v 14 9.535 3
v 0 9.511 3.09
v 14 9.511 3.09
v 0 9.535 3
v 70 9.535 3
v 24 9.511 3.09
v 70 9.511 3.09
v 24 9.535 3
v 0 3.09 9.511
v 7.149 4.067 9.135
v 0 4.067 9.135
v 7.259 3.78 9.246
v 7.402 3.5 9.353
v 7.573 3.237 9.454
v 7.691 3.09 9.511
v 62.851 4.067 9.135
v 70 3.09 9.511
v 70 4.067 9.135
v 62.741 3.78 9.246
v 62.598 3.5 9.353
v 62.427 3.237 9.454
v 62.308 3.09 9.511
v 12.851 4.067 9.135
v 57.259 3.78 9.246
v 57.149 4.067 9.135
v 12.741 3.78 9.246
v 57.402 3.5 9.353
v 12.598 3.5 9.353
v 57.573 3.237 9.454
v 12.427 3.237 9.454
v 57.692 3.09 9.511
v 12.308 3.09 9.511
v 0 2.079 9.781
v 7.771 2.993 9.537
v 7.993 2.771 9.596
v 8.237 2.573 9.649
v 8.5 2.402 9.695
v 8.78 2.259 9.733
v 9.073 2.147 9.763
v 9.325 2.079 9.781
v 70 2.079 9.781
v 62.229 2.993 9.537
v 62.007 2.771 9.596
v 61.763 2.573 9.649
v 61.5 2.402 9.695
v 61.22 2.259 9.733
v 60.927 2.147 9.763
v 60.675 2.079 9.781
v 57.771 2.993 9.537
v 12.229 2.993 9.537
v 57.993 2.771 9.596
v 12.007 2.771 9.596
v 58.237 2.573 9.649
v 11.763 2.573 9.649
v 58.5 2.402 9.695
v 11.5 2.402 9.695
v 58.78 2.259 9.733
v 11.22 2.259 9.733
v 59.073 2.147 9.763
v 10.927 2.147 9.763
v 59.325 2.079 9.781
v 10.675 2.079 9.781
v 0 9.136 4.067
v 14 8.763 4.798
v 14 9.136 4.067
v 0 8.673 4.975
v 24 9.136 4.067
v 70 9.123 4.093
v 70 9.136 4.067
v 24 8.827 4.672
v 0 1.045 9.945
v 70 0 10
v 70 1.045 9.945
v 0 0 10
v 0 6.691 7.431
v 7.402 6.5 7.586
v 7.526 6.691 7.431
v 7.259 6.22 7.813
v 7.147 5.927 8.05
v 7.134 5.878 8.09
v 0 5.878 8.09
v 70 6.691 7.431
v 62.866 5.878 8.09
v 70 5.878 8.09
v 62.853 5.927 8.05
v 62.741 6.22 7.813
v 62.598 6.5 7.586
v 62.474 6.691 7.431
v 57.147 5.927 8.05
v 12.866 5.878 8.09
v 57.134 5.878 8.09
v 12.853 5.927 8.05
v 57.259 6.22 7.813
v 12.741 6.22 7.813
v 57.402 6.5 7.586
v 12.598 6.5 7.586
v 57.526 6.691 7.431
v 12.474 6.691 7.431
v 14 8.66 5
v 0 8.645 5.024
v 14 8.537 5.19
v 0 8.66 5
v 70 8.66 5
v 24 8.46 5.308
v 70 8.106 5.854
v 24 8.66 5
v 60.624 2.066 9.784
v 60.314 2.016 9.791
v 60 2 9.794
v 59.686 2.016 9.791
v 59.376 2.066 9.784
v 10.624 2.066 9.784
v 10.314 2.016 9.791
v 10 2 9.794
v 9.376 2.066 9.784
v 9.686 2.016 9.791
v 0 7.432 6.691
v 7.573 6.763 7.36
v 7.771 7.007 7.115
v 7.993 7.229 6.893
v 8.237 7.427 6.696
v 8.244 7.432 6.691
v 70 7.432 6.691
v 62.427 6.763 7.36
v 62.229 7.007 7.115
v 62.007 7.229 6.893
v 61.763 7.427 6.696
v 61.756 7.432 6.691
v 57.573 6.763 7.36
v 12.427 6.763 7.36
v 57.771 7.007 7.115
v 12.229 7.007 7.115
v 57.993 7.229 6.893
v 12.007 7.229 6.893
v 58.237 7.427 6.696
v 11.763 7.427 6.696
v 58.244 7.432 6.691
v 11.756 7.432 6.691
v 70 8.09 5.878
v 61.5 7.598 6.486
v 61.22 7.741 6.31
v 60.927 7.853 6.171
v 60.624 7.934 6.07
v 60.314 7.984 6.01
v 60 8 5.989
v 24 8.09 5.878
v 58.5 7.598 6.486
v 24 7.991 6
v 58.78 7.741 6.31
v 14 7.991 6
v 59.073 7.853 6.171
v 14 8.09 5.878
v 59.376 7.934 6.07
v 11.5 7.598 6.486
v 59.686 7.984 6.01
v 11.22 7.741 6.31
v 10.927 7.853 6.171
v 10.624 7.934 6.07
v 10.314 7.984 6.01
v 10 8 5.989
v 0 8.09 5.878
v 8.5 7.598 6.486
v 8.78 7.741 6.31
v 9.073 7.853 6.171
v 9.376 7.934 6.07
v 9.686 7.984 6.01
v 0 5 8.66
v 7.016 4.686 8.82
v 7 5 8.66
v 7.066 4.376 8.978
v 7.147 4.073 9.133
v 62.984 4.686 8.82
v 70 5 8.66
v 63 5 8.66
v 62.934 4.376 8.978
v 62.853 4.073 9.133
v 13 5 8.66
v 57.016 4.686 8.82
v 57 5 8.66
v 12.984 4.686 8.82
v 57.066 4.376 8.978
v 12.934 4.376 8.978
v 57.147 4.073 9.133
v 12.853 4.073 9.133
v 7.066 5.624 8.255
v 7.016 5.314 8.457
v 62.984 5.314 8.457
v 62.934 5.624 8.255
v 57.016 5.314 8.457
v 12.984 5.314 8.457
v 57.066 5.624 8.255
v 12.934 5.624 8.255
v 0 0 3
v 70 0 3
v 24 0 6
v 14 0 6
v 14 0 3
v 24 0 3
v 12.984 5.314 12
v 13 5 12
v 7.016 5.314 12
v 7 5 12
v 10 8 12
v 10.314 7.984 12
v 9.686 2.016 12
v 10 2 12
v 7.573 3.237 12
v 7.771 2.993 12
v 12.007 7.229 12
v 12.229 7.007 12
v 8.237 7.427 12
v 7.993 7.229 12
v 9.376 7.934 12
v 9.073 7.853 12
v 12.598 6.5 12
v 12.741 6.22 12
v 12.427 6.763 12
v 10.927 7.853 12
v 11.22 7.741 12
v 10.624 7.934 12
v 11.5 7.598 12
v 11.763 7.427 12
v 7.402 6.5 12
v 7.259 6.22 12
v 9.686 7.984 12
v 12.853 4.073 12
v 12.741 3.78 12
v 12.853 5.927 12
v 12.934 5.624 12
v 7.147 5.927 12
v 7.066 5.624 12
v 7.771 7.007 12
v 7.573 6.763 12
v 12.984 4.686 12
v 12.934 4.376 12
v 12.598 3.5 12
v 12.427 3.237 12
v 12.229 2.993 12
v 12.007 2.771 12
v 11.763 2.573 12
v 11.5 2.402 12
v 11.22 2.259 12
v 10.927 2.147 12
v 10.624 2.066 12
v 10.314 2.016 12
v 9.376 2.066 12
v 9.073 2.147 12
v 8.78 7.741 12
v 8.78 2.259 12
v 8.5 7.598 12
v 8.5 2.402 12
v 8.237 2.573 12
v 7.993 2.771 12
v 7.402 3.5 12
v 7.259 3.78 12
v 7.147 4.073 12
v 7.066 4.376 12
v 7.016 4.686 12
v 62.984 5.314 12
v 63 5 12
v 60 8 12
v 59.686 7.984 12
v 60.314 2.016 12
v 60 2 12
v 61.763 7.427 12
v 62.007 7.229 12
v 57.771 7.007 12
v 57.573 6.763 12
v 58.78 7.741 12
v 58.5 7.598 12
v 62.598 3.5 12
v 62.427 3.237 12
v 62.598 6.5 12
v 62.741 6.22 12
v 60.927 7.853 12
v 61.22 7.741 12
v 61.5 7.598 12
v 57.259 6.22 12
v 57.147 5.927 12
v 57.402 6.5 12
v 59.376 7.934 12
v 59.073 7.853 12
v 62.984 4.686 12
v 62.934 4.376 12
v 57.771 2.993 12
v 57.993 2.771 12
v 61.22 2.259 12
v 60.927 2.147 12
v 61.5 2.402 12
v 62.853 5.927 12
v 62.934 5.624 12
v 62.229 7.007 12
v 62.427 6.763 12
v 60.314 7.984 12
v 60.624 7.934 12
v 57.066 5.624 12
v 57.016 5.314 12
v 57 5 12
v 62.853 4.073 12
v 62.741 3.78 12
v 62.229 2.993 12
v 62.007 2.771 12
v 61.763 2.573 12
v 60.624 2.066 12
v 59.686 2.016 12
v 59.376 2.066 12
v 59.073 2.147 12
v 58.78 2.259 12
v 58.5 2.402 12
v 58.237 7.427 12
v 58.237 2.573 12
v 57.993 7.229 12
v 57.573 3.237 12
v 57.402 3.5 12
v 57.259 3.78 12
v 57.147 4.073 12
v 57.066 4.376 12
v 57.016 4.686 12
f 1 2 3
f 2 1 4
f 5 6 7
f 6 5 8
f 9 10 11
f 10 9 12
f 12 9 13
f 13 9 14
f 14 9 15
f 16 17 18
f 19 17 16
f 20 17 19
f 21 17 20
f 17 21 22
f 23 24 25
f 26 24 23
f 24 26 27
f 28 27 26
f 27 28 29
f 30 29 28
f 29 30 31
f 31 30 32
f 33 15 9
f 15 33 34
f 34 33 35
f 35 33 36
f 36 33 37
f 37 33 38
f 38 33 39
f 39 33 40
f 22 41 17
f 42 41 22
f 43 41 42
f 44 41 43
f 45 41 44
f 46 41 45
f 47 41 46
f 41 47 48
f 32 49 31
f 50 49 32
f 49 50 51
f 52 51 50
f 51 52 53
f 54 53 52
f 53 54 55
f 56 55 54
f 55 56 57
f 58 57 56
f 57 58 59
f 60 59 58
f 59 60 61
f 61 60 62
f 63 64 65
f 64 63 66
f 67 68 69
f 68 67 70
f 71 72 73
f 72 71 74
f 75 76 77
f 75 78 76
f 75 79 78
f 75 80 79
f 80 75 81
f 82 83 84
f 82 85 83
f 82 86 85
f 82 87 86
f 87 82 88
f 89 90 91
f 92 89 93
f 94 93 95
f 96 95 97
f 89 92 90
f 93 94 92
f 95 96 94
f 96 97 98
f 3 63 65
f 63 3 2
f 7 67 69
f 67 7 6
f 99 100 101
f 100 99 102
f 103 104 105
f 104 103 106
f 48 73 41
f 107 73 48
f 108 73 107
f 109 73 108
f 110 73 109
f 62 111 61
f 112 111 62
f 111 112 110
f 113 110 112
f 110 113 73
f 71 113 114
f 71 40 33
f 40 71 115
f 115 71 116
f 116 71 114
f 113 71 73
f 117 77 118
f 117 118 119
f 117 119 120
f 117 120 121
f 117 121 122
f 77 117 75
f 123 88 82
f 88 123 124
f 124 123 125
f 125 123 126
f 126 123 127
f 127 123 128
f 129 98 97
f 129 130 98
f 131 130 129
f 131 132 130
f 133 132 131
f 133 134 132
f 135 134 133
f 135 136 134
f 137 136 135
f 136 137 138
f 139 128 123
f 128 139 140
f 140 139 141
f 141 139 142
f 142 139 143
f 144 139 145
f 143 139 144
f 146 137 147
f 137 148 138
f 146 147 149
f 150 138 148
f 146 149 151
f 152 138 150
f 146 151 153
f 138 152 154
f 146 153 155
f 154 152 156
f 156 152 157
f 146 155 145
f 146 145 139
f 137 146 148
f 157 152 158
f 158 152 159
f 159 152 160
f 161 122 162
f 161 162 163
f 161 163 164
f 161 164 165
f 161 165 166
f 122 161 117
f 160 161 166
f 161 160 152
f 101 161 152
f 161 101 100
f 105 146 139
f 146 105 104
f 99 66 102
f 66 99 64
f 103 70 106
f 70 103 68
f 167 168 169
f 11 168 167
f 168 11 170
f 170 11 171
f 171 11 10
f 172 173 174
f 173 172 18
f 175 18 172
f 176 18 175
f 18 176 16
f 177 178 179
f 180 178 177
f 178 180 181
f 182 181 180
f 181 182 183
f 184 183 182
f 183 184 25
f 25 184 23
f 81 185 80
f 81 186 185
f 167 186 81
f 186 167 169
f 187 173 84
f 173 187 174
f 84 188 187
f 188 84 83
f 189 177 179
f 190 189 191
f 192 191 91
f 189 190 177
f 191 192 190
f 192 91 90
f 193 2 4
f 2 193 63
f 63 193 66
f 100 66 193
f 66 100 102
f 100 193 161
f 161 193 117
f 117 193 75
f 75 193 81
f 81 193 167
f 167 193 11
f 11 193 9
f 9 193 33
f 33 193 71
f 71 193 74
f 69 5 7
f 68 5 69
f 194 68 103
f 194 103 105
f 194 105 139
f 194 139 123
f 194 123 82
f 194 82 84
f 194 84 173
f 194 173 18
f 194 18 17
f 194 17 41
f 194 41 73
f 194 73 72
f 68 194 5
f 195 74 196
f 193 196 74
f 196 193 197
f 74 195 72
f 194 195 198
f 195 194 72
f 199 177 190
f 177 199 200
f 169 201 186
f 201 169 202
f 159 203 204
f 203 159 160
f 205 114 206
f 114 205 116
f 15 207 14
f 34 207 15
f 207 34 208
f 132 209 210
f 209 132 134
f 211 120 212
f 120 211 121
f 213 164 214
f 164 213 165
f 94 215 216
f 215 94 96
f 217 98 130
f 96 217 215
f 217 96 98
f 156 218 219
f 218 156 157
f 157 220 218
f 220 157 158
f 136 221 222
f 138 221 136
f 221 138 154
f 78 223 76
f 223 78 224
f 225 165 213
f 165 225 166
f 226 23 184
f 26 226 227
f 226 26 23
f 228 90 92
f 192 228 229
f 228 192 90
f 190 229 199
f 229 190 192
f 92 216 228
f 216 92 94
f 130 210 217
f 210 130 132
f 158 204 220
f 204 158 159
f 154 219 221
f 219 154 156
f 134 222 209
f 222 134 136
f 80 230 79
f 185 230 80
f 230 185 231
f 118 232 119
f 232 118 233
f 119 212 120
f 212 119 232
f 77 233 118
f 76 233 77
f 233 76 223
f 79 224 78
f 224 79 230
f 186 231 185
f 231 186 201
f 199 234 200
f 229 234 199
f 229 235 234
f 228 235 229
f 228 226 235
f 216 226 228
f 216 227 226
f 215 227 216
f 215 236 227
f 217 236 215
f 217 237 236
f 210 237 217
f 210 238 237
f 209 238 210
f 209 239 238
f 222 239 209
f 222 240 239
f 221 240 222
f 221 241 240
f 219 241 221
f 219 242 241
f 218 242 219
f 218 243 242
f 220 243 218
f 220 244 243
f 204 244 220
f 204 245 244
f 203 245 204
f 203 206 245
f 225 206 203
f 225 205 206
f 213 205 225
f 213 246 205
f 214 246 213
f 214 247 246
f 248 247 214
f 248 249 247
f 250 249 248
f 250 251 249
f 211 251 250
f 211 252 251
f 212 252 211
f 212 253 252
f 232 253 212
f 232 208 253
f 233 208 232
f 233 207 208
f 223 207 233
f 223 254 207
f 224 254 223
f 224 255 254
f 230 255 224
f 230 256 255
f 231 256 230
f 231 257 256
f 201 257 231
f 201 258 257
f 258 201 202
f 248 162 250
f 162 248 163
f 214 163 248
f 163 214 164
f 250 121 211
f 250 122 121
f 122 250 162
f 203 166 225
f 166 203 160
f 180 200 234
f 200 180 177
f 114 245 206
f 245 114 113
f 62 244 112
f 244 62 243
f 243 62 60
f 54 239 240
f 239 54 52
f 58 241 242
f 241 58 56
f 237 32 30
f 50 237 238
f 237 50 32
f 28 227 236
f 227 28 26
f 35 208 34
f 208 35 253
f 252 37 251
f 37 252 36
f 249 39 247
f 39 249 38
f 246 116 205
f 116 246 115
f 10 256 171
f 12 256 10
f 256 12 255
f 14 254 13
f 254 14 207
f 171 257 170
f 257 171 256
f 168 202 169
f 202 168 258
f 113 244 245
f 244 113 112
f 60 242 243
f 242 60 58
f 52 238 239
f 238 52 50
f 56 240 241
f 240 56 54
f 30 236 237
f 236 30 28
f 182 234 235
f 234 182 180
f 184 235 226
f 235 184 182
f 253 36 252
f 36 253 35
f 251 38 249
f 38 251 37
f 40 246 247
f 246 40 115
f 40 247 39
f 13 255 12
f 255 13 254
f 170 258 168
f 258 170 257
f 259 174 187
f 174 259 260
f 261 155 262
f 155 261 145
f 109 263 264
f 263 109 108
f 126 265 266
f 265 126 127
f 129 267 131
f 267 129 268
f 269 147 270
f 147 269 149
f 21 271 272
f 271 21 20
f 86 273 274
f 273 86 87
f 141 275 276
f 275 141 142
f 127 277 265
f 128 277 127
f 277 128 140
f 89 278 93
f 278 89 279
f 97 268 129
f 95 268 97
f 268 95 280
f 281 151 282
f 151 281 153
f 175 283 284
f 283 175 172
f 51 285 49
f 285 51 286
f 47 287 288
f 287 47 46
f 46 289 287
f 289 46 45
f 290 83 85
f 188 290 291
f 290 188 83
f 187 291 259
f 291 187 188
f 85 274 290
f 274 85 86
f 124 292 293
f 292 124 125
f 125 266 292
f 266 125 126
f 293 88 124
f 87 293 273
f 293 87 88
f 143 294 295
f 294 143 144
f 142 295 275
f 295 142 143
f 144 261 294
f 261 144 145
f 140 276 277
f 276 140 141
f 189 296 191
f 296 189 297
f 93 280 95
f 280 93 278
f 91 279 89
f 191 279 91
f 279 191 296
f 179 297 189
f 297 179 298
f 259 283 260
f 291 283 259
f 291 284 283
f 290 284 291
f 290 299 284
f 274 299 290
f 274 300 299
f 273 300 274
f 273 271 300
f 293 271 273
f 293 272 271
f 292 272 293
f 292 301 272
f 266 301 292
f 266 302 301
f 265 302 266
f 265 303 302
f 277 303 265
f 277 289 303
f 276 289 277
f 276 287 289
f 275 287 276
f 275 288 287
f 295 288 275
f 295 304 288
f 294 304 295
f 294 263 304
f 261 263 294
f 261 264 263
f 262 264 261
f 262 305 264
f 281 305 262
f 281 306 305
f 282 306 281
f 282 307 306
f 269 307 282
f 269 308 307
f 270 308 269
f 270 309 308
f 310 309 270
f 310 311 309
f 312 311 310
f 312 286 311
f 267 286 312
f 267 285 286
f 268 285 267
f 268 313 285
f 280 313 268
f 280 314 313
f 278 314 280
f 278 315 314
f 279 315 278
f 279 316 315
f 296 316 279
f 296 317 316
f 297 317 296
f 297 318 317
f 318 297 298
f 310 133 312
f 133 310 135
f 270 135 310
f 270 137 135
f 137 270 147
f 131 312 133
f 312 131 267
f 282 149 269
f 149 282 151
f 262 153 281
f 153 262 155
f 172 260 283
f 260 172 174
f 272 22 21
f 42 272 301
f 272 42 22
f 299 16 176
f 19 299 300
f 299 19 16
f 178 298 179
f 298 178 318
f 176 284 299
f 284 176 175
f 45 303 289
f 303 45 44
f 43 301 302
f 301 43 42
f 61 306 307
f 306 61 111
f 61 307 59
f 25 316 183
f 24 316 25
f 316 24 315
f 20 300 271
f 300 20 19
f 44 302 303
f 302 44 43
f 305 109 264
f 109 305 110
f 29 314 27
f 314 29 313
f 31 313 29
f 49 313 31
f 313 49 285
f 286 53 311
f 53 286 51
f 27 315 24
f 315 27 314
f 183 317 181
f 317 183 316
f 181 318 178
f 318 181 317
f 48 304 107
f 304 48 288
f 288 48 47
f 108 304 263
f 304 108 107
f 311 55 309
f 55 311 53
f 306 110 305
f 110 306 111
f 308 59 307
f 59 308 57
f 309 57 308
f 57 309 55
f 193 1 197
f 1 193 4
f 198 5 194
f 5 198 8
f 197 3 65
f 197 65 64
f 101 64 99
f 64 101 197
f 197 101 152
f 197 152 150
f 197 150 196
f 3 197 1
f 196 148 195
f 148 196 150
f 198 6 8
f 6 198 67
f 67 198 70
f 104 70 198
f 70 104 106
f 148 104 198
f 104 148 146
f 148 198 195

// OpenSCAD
$fn = 60;

fill_size = [70, 10, 10];

pin_radius = 3;
pin_height = 2;

module fillet(length=10, r=2) {
    difference() {
        cube([length, r, r]);

        translate([0, r, r])
        rotate([0, 90, 0])
            translate([0, 0, -1])
            cylinder(r=r, h=length+2);
    }
}

module pins() {
    translate([(fill_size[0]-50-pin_radius*2)/2+pin_radius, (fill_size[1]-pin_radius*2)/2+pin_radius, 0]) {
        cylinder(r=pin_radius, h=fill_size[1]+pin_height);
        translate([50, 0, 0])
            cylinder(r=pin_radius, h=fill_size[1]+pin_height);
        }
}

difference() {
    union () {
        difference() {
            cube(fill_size);
            
            translate([-1, fill_size[1]+.0001, fill_size[1]])
            rotate([180, 0, 0])
            fillet(length=fill_size[0]+2, r=fill_size[1]);
        }

        pins();
    }
    
    translate([-1, -1, -1])
        cube([fill_size[0]+2, fill_size[1]+2, 4]);
    
    translate([14, 0, 3])
    cube([10, 13, 3]);
}
